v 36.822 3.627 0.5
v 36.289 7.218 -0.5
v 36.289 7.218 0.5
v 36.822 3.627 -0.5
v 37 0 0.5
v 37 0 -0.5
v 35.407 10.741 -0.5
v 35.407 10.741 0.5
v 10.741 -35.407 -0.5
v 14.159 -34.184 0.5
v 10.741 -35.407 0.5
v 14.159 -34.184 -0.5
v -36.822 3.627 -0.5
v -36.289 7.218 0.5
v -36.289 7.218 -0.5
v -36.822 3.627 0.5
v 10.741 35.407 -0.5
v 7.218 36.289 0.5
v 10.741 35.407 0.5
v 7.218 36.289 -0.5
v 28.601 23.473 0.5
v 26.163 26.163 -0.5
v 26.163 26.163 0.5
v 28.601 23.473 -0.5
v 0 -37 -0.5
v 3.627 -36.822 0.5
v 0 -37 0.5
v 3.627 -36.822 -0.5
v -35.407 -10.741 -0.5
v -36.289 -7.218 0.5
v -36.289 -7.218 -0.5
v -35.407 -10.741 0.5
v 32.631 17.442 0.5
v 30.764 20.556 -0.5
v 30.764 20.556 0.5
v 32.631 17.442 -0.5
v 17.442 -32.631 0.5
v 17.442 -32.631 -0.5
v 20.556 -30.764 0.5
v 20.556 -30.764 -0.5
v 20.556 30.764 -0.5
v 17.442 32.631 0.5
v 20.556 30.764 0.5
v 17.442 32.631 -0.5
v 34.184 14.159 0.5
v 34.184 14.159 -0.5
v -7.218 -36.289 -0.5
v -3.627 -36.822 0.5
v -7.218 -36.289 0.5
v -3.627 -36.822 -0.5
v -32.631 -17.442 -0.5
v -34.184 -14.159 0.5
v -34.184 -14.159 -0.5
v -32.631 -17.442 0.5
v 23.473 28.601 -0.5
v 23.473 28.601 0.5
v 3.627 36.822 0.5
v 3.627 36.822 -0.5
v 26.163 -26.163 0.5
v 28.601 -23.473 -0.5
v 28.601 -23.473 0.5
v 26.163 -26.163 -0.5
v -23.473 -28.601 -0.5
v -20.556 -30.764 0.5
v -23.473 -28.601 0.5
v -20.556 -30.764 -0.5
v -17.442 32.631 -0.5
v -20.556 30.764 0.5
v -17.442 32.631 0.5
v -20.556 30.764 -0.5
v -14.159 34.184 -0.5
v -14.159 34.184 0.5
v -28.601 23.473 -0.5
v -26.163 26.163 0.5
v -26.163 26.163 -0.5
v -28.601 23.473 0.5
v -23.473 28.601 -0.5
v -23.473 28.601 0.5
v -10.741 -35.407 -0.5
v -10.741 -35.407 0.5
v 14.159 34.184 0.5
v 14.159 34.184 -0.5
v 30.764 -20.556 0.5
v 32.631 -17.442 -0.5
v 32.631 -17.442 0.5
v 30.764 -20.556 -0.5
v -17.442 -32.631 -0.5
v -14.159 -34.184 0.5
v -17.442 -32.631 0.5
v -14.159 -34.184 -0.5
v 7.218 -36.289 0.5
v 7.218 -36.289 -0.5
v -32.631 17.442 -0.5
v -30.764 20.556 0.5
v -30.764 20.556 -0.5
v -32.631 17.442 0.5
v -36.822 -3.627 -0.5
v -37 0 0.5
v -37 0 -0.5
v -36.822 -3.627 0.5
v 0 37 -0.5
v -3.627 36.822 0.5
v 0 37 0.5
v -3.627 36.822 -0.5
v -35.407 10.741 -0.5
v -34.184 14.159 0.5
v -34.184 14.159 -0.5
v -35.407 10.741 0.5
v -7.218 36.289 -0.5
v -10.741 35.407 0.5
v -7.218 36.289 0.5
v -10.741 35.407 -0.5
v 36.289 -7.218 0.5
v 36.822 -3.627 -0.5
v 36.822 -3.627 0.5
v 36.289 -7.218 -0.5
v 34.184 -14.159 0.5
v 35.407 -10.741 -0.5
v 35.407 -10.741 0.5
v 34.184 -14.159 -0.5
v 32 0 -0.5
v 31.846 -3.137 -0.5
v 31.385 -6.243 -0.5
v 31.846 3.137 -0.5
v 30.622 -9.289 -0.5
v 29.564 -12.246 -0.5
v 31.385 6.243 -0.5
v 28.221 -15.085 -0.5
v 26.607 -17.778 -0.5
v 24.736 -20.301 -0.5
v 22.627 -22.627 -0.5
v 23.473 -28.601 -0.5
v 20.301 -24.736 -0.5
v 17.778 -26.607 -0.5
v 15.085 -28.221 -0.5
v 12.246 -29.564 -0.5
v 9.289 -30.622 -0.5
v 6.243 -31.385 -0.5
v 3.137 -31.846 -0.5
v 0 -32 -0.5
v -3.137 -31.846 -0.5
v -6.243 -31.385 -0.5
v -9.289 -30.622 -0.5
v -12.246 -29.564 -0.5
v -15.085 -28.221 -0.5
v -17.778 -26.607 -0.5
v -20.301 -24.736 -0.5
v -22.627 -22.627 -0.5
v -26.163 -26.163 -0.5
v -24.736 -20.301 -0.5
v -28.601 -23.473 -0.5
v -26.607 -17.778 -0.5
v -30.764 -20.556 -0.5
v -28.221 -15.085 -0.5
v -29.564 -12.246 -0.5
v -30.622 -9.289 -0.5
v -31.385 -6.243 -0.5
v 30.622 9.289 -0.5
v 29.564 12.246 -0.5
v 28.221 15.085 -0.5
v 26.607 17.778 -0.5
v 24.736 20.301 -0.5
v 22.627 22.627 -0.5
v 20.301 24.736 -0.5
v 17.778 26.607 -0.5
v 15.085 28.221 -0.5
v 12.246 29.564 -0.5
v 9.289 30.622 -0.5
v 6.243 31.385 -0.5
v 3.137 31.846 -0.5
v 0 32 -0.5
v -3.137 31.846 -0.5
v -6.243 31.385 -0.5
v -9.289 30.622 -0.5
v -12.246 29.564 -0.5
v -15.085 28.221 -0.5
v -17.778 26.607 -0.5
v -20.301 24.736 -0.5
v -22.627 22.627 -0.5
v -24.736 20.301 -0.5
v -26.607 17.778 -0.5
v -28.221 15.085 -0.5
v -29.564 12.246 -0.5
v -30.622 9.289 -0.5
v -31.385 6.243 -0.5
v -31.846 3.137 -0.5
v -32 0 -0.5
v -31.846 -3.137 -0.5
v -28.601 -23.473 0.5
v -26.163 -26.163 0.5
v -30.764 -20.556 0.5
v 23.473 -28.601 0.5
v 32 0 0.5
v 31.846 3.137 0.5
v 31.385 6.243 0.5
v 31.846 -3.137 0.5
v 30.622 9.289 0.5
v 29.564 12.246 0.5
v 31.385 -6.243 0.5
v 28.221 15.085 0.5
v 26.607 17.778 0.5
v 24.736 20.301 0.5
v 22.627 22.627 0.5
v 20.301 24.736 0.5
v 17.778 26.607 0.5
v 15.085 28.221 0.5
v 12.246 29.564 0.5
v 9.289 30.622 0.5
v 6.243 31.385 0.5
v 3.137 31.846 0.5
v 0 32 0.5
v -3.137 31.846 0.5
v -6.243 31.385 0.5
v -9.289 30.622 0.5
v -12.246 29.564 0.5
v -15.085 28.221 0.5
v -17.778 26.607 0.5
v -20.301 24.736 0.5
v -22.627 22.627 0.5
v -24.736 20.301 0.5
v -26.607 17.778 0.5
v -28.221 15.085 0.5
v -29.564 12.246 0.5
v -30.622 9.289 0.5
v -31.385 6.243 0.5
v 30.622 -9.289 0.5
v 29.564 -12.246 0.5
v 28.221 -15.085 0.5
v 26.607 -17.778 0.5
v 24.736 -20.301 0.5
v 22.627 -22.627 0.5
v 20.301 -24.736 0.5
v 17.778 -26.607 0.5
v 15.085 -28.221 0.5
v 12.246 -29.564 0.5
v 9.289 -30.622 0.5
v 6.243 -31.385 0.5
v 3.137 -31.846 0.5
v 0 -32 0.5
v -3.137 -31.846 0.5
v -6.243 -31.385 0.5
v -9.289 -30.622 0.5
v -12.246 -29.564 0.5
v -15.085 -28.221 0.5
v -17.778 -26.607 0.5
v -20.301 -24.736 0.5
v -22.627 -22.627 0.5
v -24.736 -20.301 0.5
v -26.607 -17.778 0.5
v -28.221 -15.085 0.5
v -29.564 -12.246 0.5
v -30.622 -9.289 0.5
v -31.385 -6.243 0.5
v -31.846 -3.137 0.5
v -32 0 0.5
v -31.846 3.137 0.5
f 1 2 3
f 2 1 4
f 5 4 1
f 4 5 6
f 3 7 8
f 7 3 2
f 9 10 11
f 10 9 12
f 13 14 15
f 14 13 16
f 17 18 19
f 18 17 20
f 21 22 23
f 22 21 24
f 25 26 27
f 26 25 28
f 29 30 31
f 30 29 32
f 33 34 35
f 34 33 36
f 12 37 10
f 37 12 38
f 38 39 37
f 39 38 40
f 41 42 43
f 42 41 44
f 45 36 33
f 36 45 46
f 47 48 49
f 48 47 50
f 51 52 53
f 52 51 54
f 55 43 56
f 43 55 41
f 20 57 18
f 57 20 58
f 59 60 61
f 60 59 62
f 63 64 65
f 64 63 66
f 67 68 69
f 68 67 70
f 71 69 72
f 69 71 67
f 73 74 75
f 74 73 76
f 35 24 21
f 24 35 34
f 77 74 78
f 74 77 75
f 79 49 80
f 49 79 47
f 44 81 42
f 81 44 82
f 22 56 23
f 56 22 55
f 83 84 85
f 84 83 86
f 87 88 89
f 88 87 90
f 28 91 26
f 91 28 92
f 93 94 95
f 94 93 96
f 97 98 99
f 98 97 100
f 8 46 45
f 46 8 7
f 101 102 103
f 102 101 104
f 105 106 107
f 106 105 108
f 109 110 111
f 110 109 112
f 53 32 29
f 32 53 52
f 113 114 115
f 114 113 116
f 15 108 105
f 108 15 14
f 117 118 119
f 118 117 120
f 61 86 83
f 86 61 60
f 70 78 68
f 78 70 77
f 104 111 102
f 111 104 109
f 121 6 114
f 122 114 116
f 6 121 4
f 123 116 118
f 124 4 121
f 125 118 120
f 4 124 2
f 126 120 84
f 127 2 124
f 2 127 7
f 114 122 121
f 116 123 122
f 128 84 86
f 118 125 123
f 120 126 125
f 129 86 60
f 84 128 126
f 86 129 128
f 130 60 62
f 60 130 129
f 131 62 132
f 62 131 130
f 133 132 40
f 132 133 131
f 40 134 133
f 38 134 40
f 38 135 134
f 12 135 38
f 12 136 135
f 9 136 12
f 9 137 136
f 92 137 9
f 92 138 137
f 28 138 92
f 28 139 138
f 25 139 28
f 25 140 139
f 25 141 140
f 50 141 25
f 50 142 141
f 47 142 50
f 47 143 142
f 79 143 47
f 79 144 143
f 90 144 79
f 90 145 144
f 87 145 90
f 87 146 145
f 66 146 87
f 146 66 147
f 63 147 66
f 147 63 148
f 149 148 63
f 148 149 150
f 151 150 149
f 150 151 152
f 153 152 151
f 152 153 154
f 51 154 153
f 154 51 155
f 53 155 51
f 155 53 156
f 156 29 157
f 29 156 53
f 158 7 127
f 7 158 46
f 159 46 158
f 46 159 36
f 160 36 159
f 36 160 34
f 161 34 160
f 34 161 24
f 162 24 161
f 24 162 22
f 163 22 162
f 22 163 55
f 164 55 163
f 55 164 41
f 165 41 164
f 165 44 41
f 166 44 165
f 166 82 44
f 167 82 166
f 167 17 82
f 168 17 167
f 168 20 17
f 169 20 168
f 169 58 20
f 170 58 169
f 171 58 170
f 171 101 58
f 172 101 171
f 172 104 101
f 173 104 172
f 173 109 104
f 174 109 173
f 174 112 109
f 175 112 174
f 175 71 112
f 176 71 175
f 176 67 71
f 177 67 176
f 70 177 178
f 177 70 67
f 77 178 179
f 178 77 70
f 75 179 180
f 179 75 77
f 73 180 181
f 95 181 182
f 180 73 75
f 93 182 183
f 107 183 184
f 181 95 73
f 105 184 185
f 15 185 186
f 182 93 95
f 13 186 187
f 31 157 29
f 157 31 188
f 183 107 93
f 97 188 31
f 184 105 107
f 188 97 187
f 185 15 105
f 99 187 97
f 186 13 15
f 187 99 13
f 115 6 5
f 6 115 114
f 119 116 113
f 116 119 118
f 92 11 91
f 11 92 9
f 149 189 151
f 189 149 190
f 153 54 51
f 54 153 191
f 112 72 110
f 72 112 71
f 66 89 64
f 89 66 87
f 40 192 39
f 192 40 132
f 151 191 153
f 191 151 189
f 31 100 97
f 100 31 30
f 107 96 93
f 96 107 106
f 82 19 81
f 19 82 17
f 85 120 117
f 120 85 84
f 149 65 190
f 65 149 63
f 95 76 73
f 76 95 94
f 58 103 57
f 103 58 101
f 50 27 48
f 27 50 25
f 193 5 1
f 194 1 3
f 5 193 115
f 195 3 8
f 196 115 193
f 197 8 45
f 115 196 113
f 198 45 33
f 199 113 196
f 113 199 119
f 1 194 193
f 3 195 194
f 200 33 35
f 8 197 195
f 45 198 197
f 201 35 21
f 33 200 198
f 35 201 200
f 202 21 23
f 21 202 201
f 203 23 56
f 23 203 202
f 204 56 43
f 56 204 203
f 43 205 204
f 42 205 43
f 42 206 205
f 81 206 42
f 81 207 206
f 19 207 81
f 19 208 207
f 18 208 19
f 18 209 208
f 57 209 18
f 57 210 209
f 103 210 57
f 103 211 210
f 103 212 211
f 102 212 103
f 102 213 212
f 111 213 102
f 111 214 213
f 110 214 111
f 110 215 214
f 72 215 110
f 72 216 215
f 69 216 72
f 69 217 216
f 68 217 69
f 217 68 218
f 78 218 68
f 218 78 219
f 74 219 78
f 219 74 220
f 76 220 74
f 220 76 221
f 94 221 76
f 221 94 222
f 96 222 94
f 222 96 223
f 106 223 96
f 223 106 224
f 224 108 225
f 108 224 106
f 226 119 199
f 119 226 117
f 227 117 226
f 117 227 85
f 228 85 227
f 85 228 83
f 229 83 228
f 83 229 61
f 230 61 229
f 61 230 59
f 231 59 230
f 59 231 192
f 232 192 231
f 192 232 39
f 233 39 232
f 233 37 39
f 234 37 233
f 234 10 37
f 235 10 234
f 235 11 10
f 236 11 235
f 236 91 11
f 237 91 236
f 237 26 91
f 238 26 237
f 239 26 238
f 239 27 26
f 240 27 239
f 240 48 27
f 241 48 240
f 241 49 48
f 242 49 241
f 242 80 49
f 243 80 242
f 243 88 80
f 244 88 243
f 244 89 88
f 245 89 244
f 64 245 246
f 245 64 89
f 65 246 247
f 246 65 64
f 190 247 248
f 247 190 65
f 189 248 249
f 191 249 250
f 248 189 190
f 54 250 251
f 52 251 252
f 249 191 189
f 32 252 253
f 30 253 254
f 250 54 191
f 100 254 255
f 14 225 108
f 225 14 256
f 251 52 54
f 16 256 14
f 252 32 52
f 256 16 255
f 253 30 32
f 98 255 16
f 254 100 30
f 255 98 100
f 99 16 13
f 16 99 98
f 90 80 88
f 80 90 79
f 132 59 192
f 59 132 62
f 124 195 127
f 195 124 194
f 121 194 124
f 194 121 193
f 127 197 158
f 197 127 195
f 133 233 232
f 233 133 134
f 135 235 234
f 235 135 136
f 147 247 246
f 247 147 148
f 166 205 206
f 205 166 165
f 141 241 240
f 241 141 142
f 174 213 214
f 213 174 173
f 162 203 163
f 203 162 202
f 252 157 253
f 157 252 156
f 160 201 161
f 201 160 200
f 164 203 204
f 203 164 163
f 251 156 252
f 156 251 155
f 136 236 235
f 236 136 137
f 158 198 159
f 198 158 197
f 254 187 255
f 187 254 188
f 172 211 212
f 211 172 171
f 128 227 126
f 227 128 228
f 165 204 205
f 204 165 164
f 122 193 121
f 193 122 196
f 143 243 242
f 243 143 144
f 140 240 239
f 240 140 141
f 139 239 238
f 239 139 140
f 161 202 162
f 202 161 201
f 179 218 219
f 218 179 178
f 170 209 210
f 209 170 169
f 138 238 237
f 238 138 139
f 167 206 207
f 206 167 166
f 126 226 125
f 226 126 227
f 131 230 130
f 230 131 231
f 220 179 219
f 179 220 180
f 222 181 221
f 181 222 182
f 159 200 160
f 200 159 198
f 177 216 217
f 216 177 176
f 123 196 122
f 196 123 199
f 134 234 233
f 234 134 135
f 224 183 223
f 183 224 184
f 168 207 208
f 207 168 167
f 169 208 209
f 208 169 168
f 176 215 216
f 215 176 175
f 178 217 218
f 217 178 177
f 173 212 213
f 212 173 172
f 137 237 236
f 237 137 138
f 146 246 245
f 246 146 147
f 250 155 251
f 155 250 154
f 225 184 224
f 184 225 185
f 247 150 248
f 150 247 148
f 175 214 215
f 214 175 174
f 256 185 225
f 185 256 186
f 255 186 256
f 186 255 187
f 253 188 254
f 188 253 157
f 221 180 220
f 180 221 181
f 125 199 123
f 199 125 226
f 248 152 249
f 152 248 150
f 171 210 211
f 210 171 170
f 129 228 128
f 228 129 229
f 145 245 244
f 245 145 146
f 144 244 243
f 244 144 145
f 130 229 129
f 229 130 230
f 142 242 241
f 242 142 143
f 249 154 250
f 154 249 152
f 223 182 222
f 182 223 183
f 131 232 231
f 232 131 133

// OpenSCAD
$fn=64;
difference(){
    cylinder(d=74, h=1,center=true);
    cylinder(d=64, h=1.1,center=true);
}
